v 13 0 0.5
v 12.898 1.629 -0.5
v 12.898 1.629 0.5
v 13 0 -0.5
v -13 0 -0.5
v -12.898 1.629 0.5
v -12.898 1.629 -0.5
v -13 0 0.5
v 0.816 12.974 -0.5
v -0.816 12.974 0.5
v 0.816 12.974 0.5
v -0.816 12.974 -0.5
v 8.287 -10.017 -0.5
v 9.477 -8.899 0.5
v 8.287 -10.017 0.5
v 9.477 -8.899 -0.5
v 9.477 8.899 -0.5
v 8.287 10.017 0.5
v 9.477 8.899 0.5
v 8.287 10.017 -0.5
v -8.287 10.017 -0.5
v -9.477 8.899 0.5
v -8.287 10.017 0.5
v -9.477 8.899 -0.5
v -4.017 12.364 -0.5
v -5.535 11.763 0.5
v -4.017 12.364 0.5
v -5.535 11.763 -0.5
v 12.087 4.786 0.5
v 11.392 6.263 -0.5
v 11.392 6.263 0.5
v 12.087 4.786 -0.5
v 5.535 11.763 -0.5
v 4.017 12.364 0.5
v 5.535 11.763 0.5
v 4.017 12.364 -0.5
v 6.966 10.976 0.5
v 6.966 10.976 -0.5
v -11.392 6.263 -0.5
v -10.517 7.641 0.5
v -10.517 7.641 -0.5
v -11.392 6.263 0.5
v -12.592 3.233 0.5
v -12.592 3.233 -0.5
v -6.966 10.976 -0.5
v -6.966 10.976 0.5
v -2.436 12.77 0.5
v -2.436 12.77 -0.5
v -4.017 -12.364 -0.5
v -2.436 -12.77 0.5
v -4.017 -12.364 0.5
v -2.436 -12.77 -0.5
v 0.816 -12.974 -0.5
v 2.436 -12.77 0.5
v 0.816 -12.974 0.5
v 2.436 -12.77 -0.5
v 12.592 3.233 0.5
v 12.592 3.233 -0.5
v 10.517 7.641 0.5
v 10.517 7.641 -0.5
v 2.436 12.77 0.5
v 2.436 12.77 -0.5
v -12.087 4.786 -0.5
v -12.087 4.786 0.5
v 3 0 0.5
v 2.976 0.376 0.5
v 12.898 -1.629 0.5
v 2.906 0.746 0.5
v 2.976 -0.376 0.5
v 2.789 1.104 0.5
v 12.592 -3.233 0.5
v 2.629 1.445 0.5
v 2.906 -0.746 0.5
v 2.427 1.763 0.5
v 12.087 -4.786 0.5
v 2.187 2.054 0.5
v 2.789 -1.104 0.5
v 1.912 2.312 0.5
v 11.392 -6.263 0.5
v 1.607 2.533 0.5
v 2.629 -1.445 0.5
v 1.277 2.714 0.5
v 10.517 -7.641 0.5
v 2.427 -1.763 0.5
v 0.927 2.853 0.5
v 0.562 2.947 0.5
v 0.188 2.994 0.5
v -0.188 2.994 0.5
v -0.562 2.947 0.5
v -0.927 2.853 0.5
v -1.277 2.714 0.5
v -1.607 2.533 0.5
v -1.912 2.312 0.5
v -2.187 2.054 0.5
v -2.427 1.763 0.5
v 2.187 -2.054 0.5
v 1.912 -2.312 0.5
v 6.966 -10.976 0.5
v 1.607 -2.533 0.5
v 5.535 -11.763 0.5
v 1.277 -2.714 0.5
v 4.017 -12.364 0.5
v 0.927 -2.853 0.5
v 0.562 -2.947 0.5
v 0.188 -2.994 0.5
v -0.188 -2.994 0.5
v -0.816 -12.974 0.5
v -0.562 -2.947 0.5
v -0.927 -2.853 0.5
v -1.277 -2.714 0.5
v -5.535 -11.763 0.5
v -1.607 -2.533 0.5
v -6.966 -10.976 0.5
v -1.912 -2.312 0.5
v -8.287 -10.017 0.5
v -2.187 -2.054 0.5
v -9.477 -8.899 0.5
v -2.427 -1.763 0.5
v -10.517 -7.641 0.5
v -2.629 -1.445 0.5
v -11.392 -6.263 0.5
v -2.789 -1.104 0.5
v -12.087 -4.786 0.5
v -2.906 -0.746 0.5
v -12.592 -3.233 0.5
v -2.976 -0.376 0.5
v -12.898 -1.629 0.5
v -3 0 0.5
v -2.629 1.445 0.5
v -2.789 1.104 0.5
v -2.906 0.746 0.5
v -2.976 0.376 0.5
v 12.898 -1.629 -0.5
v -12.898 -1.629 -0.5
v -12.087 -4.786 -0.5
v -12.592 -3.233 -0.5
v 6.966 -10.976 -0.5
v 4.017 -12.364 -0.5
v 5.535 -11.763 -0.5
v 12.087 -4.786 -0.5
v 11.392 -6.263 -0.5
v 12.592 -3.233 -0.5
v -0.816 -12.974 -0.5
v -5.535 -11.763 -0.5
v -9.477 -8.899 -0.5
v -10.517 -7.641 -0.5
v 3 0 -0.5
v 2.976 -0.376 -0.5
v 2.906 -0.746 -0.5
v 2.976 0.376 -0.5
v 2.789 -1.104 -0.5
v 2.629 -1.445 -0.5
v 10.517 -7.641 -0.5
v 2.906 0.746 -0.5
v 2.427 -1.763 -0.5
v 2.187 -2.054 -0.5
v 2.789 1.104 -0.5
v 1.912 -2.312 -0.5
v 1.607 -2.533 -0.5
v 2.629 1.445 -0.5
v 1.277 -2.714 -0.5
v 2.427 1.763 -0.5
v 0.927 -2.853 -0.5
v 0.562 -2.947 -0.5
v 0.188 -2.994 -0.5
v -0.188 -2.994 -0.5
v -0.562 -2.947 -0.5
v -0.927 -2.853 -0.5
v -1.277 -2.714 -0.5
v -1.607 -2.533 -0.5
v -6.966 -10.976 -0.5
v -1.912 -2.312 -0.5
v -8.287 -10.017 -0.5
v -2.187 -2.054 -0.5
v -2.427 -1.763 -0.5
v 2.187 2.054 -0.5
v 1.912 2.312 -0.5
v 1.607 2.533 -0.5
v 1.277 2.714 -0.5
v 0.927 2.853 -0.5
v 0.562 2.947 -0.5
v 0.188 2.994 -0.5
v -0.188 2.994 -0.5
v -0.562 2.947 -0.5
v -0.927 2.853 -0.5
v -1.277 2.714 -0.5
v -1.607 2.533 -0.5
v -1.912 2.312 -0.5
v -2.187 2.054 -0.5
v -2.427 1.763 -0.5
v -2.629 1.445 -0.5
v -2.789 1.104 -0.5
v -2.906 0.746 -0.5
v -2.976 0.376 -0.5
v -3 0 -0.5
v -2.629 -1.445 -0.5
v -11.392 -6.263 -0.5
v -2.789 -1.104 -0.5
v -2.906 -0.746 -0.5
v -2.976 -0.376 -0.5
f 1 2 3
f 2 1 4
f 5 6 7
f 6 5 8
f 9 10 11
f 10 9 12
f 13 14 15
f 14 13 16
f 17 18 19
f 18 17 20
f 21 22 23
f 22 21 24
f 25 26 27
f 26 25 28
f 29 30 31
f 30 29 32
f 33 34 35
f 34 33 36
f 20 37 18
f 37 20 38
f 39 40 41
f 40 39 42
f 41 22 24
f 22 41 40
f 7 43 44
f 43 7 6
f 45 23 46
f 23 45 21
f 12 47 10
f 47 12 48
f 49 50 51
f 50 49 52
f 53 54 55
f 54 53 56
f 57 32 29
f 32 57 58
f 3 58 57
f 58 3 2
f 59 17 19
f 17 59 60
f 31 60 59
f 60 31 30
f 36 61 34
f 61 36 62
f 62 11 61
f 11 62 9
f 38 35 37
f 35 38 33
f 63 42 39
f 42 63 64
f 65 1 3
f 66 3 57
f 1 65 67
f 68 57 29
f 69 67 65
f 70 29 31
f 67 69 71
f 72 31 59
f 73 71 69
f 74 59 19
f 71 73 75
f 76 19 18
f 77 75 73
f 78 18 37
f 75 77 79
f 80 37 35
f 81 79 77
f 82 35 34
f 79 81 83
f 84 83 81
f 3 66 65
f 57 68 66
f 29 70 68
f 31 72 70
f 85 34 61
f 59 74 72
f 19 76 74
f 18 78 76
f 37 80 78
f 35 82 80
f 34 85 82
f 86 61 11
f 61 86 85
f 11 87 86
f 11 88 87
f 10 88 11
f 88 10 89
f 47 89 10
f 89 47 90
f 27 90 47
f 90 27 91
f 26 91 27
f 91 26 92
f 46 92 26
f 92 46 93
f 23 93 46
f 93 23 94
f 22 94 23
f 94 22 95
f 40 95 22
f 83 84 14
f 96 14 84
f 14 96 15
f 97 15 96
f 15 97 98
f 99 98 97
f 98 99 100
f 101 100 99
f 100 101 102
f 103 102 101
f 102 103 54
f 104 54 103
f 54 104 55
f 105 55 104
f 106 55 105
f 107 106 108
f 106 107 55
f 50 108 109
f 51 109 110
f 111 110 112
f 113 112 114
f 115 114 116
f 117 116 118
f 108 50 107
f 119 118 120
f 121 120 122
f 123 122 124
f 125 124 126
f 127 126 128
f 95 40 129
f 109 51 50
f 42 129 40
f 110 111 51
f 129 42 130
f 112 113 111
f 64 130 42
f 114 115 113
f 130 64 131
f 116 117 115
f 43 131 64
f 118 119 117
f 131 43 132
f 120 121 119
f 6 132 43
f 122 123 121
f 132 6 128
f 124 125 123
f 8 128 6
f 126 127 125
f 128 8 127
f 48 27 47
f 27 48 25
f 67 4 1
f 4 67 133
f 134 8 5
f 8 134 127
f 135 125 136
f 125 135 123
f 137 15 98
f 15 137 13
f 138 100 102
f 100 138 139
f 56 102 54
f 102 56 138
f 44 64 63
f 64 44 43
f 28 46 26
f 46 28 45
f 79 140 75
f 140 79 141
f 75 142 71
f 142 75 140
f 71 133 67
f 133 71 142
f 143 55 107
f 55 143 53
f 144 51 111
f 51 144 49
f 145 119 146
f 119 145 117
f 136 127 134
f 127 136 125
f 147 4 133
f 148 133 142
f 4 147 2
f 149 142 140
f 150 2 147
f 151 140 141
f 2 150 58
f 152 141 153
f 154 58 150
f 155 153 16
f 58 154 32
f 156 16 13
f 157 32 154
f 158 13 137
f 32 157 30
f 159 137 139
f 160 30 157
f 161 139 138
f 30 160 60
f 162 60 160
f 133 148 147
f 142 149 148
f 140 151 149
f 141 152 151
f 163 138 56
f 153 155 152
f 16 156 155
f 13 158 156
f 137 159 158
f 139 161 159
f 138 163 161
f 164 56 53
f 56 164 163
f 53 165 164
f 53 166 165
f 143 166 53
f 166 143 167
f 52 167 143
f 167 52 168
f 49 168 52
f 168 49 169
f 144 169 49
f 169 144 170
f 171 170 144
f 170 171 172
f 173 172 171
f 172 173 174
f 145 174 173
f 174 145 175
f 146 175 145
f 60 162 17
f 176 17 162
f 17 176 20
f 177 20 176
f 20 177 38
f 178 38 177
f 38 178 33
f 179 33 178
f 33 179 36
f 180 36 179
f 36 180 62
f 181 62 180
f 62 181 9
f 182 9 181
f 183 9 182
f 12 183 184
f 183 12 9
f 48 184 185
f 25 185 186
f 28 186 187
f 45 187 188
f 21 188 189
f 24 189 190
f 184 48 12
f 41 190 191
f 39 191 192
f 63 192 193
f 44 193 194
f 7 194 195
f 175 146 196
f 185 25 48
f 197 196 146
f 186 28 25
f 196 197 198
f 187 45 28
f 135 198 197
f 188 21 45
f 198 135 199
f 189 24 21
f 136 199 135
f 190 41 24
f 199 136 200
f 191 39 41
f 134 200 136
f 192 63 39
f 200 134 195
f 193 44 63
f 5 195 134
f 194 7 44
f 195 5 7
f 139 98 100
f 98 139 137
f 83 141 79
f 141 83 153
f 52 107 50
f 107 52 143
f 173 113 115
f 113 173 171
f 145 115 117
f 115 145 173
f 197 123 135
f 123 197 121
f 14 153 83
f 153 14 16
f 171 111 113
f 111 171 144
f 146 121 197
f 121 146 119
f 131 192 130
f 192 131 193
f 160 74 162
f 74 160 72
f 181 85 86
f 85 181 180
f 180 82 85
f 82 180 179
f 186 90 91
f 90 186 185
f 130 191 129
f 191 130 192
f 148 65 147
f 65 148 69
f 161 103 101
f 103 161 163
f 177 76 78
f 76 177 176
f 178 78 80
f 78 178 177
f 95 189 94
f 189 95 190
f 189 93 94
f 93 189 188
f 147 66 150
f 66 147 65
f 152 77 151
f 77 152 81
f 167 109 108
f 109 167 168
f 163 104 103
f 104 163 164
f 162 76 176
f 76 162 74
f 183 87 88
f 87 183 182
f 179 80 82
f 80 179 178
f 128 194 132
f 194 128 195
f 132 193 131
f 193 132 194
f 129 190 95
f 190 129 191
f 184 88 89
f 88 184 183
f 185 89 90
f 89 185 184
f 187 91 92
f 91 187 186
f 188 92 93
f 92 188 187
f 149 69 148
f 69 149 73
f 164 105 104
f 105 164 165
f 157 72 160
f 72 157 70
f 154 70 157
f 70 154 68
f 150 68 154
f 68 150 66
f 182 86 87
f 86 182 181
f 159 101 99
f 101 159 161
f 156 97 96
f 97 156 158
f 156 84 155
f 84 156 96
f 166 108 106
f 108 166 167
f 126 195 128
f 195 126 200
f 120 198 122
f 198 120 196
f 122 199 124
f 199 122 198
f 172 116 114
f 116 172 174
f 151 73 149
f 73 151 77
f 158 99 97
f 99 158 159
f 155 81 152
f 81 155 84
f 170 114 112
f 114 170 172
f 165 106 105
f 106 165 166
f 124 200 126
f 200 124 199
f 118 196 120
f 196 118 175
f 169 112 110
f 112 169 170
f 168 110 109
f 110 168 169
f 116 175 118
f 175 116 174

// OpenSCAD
$fn = 50;


difference() {
	union() {
		translate(v = [0, 0, -0.5000000000]) {
			cylinder(h = 1, r = 13.0000000000);
		}
	}
	union() {
		translate(v = [0, 0, -100.0000000000]) {
			cylinder(h = 200, r = 3.0000000000);
		}
	}
}
